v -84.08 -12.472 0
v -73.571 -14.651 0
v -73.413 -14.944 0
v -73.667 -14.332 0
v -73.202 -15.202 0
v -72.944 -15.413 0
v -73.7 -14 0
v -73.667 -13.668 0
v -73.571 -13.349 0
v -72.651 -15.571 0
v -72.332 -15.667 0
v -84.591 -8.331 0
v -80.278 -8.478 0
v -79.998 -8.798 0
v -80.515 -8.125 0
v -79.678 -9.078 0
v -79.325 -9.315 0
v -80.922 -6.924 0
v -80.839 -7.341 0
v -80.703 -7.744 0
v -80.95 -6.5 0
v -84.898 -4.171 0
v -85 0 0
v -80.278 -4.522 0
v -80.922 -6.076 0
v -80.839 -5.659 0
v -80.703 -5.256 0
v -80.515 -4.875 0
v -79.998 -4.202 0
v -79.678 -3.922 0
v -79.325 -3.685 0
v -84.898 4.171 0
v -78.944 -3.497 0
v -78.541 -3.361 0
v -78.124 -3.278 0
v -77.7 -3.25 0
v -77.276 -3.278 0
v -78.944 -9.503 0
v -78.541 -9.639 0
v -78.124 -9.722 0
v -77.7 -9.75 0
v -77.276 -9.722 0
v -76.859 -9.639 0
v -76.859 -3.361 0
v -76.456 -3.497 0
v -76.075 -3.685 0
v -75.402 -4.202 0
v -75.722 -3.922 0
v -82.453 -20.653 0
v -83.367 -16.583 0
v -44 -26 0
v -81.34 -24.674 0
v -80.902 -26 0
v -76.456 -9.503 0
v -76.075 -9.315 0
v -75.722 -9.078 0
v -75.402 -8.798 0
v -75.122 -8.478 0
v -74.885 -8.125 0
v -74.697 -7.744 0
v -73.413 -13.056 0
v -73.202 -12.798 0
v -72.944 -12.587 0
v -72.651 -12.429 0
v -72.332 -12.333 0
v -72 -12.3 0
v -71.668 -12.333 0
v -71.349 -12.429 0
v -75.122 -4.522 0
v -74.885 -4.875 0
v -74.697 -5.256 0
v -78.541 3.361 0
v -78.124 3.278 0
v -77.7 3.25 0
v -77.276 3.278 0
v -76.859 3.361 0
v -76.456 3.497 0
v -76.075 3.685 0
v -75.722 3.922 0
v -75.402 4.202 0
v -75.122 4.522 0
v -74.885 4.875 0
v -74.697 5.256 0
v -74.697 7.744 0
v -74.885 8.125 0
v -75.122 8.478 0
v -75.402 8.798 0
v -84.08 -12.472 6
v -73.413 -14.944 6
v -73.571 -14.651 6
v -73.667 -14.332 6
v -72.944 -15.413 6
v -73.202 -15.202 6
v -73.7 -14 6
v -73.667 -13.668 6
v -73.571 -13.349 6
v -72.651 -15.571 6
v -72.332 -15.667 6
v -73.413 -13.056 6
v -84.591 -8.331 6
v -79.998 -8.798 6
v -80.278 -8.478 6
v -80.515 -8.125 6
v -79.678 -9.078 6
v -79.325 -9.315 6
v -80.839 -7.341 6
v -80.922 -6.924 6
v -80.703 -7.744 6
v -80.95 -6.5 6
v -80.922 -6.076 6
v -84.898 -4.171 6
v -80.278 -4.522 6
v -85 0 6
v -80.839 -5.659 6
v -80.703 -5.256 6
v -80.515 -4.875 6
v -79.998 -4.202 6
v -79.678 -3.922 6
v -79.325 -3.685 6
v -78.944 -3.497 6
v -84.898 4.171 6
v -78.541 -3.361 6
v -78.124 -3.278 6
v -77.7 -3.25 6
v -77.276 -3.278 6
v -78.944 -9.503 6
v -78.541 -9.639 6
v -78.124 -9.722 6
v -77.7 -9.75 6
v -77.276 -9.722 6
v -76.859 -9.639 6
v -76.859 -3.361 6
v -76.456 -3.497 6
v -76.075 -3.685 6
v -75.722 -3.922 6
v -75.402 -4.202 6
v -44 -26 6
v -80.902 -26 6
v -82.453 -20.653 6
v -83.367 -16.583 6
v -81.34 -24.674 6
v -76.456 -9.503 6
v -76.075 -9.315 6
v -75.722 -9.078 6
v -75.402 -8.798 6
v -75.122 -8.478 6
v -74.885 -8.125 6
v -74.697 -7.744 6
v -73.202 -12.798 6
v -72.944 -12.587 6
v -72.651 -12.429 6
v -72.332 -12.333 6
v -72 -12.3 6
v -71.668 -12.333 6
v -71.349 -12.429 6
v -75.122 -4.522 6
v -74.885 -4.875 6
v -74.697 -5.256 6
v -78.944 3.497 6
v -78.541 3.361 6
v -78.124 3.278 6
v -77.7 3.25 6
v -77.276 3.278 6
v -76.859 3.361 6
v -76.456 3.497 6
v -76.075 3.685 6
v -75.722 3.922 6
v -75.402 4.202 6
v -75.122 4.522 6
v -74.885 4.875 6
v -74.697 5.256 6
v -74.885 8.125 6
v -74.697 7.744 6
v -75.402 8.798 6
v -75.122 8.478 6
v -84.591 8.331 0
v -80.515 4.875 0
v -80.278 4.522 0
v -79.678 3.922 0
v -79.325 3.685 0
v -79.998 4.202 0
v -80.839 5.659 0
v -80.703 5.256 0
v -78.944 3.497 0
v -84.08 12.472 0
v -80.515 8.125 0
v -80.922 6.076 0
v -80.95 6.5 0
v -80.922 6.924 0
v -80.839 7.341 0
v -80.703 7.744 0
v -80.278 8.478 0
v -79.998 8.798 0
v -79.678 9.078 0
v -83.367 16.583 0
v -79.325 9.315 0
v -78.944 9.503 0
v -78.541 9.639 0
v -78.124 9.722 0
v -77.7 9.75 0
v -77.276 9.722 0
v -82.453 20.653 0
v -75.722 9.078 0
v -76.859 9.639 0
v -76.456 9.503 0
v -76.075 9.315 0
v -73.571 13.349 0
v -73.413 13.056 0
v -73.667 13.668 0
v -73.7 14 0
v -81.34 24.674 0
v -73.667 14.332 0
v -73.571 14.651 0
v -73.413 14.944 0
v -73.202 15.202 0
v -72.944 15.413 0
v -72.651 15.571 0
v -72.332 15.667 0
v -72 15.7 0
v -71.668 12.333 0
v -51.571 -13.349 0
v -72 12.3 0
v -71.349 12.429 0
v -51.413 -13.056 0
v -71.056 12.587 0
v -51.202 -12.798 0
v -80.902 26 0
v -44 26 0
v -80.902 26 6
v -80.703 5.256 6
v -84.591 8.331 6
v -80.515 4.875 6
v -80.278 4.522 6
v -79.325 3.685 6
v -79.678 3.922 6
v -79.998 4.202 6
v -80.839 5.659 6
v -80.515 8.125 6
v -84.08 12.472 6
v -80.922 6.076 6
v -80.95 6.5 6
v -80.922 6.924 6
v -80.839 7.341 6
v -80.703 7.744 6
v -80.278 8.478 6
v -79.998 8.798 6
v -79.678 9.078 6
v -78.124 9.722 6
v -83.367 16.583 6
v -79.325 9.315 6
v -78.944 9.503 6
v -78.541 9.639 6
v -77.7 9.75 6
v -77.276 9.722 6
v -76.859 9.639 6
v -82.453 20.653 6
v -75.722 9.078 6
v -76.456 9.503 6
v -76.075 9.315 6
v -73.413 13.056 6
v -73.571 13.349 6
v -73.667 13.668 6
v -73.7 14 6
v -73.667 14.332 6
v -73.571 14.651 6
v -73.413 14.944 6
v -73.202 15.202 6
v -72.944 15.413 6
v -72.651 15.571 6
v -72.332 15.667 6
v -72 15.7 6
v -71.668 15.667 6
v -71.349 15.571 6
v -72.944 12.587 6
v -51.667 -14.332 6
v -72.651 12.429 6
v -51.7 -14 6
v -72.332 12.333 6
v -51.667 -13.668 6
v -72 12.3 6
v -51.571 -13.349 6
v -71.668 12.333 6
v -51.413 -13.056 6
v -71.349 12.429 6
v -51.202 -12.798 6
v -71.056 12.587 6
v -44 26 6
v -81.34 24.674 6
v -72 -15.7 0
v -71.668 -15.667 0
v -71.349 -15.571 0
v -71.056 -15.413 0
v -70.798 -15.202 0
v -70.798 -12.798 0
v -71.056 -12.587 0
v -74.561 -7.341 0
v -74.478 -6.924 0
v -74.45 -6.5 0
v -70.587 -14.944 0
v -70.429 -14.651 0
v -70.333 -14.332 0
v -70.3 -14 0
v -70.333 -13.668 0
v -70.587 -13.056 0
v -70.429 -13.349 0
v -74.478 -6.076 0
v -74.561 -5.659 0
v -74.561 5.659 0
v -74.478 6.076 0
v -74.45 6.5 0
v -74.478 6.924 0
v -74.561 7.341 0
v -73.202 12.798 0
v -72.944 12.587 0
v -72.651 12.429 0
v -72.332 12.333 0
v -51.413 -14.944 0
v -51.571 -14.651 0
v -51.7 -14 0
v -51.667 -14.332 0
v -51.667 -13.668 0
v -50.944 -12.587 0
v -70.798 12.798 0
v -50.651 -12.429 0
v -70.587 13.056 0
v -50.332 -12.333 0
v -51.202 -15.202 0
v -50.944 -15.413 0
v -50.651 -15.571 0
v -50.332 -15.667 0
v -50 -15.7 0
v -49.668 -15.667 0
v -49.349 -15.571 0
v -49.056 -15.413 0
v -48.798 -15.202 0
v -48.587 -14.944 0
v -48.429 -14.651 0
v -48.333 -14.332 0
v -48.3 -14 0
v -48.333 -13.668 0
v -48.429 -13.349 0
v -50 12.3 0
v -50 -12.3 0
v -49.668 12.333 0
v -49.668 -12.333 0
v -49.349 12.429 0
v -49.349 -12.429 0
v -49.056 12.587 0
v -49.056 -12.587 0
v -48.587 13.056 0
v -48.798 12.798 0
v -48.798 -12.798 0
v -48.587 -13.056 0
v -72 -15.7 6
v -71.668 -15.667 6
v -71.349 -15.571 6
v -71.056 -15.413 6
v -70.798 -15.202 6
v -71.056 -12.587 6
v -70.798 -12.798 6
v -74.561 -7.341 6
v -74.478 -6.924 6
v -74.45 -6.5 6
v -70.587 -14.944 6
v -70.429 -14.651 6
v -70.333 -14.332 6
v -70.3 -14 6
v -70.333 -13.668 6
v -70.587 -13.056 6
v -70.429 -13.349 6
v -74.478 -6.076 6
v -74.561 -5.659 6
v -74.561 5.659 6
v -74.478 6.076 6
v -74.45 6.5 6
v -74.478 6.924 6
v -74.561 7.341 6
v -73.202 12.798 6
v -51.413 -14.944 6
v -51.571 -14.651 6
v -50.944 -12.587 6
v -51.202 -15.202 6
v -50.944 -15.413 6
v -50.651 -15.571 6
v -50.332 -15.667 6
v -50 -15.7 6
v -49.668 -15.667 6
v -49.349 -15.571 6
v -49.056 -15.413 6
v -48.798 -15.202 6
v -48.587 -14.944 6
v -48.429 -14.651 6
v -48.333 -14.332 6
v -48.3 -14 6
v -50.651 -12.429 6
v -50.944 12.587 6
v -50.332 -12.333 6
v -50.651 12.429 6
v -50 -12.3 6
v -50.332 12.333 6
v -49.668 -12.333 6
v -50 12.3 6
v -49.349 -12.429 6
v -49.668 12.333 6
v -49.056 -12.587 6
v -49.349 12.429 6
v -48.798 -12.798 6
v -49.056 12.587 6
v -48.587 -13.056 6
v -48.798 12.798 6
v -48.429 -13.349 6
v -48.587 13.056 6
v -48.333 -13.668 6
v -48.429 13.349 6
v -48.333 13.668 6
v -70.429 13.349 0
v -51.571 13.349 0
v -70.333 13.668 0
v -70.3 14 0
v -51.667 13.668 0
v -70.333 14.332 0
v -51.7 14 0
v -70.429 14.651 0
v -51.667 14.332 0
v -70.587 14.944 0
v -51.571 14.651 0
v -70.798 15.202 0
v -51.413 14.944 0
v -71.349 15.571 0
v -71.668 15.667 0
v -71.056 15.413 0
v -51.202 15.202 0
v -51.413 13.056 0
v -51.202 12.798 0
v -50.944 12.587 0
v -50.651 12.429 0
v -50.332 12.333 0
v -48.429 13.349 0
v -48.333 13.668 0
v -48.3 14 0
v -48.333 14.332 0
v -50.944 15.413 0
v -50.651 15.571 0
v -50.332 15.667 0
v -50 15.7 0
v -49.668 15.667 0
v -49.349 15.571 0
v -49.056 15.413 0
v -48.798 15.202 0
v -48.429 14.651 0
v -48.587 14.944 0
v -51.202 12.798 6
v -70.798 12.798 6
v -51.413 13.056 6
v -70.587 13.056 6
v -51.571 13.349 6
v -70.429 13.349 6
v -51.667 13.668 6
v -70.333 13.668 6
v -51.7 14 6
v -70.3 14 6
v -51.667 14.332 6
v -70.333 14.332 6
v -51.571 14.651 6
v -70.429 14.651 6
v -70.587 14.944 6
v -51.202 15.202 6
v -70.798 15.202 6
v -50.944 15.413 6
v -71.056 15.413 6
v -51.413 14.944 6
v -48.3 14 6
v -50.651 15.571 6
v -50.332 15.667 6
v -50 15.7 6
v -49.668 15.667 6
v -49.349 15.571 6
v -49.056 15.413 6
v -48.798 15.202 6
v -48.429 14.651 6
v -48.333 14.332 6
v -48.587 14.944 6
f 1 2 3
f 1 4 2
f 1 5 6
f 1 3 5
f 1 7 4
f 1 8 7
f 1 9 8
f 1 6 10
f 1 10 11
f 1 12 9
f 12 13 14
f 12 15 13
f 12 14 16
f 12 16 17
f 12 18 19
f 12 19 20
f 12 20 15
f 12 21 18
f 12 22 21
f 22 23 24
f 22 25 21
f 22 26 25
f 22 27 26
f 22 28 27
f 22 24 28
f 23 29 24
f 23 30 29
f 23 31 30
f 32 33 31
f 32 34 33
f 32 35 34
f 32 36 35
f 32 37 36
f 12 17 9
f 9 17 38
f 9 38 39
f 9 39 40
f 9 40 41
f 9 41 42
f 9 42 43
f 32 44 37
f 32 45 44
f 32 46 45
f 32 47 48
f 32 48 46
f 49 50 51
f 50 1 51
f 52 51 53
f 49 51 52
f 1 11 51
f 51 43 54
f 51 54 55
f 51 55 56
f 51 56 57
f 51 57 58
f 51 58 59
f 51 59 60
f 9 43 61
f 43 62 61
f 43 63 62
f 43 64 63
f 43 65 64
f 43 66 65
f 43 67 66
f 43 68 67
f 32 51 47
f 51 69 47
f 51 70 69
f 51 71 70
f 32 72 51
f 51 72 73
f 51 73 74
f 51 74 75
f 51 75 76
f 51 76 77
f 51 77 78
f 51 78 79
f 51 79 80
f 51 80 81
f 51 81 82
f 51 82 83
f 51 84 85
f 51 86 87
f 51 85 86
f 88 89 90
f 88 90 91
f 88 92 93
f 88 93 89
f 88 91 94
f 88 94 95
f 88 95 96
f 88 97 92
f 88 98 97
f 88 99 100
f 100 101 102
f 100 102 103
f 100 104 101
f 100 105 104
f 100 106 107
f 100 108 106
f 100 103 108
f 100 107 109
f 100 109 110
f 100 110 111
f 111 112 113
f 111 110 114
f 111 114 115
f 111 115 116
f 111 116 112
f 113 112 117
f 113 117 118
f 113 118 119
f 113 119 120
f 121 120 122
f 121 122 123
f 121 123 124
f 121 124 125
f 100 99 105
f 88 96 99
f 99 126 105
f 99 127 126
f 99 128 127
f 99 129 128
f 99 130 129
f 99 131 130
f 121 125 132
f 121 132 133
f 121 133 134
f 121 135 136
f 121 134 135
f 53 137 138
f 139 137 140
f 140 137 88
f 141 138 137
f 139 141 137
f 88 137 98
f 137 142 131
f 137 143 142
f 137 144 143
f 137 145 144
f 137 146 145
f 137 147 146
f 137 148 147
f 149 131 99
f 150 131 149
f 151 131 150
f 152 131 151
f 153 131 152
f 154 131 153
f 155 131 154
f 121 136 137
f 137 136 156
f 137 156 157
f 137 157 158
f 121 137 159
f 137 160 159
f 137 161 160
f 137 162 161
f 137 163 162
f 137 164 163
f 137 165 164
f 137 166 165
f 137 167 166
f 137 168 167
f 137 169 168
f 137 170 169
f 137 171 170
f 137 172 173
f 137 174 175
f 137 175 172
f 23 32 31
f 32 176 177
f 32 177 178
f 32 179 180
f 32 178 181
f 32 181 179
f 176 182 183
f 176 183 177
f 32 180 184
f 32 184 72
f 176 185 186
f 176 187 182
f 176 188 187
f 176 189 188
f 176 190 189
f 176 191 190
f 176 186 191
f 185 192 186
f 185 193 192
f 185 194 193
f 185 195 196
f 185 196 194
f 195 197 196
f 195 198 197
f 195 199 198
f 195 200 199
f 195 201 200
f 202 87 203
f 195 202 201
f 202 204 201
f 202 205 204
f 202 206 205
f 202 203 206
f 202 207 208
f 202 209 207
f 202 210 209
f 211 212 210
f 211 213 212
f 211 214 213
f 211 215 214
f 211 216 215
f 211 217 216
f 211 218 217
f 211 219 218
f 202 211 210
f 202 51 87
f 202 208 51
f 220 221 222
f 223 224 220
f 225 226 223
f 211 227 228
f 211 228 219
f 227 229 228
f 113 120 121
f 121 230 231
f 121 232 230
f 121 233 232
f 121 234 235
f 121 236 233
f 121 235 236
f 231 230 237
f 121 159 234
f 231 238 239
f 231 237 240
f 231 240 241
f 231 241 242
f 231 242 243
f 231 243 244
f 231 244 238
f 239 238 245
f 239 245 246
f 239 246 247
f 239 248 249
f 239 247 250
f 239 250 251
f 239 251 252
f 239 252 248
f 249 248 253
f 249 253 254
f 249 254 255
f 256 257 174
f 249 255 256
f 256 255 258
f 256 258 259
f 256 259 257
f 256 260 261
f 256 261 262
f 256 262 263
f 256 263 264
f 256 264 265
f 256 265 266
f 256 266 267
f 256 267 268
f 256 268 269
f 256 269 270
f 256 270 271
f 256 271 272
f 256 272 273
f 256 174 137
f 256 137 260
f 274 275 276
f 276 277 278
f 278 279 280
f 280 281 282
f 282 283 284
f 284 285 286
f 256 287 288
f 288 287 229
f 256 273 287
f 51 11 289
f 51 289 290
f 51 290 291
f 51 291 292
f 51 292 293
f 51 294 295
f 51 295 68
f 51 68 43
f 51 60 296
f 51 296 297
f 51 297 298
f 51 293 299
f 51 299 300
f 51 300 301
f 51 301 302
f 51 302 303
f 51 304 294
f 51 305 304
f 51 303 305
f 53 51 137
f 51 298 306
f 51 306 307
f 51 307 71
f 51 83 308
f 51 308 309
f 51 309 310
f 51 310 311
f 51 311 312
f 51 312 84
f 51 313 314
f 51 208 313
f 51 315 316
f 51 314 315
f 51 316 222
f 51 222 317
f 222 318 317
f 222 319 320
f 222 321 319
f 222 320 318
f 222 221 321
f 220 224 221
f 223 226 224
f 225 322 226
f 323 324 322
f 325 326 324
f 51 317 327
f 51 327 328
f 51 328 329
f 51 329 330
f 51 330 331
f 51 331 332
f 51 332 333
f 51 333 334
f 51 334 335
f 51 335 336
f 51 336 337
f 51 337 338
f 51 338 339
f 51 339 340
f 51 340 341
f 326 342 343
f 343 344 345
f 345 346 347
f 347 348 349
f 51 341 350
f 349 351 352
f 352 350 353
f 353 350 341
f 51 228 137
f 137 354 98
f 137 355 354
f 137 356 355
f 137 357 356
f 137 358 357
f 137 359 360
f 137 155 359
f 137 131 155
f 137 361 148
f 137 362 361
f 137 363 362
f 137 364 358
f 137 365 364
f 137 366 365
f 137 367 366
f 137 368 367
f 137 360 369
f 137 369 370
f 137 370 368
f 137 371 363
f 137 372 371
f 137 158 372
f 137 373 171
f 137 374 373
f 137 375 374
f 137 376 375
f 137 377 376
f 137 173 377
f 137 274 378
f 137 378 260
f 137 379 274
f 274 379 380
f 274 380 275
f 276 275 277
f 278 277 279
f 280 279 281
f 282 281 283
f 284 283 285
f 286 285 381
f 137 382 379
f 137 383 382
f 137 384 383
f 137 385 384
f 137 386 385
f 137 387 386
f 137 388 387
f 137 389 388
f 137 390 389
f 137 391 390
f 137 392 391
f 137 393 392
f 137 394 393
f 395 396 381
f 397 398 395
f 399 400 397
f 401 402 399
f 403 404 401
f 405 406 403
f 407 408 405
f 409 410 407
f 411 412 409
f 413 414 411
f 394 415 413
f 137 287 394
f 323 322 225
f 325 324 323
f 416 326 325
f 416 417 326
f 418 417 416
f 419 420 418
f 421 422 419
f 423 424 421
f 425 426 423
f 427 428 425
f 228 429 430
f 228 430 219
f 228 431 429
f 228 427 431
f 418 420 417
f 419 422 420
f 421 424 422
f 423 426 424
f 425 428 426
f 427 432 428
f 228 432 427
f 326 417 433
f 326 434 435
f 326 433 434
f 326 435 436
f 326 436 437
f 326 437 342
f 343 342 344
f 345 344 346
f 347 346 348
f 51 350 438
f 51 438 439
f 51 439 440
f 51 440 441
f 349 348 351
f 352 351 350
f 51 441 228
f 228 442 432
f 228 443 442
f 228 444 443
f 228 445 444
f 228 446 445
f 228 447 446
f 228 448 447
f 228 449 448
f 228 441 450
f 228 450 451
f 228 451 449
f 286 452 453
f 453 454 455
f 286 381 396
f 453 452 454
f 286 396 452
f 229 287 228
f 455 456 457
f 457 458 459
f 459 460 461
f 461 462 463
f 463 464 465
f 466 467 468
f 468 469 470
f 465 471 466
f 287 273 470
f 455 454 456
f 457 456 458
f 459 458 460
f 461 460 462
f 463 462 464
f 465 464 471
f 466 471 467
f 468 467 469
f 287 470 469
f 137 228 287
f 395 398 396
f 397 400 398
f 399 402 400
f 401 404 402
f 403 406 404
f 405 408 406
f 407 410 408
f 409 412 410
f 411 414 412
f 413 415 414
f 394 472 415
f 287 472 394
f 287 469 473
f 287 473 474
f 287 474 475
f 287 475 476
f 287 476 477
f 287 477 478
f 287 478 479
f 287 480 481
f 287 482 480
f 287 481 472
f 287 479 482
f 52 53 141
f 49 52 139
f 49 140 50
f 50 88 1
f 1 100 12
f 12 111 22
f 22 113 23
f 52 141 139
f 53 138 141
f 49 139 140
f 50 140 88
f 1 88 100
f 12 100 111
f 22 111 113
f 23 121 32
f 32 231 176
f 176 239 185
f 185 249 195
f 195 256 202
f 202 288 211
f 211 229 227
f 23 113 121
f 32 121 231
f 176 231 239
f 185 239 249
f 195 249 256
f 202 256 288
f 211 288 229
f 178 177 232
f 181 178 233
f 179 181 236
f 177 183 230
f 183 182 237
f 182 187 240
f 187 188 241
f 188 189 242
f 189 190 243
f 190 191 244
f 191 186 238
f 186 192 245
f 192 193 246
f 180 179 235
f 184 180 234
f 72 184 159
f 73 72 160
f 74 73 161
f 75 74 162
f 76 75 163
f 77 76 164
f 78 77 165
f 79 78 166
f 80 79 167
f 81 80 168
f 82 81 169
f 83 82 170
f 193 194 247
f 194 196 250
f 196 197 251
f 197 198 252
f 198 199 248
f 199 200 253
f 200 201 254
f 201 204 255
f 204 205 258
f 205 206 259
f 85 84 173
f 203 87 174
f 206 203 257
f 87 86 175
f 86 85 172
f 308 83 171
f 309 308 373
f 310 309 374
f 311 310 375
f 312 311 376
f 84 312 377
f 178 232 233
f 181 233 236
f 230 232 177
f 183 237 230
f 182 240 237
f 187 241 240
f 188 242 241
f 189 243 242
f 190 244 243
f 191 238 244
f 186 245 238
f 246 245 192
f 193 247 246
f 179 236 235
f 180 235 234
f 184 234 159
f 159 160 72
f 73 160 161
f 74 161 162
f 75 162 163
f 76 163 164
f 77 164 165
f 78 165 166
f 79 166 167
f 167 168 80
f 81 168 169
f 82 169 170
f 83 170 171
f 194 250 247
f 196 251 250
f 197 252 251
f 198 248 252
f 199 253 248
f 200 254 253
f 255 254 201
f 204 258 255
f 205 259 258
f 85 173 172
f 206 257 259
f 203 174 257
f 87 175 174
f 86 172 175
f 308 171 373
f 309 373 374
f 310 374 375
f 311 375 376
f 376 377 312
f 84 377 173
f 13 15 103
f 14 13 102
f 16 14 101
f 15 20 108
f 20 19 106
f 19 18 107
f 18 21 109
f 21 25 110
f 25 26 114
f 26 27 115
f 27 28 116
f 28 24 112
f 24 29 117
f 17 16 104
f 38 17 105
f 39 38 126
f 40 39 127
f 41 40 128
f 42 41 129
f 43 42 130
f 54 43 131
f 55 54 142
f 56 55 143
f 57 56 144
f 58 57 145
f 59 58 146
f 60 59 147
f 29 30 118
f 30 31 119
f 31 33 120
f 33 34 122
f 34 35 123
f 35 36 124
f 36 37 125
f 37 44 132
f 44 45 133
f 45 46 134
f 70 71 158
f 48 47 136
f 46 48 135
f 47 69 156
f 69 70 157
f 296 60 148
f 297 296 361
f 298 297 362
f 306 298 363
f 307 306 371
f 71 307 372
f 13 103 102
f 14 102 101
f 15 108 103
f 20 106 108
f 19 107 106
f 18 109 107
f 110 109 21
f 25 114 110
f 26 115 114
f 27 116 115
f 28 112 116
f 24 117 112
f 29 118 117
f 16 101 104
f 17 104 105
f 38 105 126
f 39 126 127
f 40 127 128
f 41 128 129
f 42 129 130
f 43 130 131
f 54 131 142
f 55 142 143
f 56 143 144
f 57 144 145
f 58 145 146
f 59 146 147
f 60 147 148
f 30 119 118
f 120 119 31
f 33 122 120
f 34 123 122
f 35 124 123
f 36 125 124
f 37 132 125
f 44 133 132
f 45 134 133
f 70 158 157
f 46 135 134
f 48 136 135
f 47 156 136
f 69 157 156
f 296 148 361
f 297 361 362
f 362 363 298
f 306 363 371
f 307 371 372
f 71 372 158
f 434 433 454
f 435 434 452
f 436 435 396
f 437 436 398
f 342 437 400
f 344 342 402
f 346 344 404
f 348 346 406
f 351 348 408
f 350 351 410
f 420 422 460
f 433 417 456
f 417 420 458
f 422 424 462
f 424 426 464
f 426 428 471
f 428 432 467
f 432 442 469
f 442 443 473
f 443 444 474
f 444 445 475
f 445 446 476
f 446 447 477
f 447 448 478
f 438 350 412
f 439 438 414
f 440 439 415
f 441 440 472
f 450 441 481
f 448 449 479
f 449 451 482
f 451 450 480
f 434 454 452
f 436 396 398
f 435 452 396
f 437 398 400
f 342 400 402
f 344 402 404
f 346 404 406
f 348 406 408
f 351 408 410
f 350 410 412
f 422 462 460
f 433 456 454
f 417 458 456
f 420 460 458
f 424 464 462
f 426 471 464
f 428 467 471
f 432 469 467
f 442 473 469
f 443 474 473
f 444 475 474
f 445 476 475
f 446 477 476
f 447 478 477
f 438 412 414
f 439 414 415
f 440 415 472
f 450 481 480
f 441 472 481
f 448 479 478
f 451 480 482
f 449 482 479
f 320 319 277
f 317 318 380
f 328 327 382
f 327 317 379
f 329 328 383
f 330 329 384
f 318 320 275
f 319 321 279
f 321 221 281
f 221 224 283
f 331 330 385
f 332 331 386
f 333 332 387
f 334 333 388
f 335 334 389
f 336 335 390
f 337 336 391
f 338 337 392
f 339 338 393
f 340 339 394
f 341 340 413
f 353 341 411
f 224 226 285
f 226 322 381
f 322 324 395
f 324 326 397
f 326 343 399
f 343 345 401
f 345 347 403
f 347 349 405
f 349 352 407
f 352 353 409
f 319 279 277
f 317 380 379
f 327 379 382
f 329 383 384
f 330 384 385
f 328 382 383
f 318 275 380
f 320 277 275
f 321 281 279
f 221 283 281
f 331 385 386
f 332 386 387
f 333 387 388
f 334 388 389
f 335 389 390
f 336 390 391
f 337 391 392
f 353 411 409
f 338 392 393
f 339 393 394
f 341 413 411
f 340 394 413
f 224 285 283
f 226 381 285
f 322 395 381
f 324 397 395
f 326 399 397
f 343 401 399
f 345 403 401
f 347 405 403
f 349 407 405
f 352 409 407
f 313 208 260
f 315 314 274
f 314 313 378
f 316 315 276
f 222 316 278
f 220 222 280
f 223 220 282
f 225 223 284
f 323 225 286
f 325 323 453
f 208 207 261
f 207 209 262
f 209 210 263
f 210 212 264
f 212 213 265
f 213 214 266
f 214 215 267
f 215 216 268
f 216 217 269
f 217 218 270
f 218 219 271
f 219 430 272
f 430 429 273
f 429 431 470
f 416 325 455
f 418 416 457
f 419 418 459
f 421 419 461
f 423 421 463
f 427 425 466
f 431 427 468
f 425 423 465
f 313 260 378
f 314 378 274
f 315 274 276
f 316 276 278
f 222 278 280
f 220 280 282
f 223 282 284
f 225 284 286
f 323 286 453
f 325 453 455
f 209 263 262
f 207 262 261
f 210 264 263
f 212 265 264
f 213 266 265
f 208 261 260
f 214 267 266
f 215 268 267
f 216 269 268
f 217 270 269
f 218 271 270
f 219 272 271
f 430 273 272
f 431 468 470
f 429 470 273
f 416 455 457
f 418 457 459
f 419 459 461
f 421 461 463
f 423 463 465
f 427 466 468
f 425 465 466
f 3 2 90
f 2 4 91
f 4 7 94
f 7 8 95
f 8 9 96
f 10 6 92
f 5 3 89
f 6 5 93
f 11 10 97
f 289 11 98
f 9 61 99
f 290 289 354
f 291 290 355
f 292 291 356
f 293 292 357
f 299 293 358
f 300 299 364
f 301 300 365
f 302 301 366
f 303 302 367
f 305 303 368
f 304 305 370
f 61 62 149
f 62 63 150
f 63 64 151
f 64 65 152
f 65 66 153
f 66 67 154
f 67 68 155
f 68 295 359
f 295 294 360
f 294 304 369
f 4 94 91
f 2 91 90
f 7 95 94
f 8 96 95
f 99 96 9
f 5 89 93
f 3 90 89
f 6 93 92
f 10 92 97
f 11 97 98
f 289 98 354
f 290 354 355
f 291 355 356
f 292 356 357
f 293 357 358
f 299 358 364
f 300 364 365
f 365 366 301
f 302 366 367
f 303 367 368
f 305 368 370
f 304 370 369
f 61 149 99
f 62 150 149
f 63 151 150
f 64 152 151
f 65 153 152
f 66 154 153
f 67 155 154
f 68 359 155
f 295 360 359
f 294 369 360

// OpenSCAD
// counterweight_arm — 转子配重臂 (与 build_stl.py 同参, 2026-08-03)
// v3 / v3.1 共用一件。坐标系 = 罩子零件系 XY, Z0 = 罩顶面 (罩零件系 Z50 / 装配 Z92.2)。
// 骑在罩顶跨接缝: 4 颗 M3 里 2 颗进 shroud_half_A、2 颗进 shroud_half_B
// ⇒ 本件顺带把两半在顶部连成一体。
// 打印: 底面贴床, 零支撑 (全件等厚, 无桥接)。⚠ 底面全贴罩顶 → 板下无空间,
// M6 五金全部放板上面, 螺杆往下伸出量必须为 0。

r_out    = 85;          // 罩外径 R = 旋转包络上限 (用户: 不超 Φ170)
base_t   = 6;           // 底板厚
x_in     = -44;         // 内端
hw       = 26;          // 半宽 (2026-08-04 用户"做宽一点": 19 → 26)

m3_xs    = [-50, -72];  // 对罩顶 4 个铜花螺母位
m3_y     = 14;
m3_d     = 3.4;

m6_x = -77.7; m6_y = 6.5;   // 2× M6 光孔, 孔距 = 2*m6_y = 13 (2026-08-04 二改)
m6_d        = 6.5;      // 光孔 — 凸台与六角窝已取消

module counterweight_arm() {
  difference() {
    intersection() {                                     // 底板 (外缘随 R85 裁), 全件等厚
      translate([-r_out-1, -hw, 0]) cube([x_in + r_out + 1, 2*hw, base_t]);   // 42 长
      cylinder(h = base_t, r = r_out, $fn = 256);
    }
    for (s = [1,-1])                                     // 2× M6 光孔 (孔距 13)
      translate([m6_x, s*m6_y, -1]) cylinder(h = base_t + 2, d = m6_d, $fn = 48);
    for (x = m3_xs) for (s = [1,-1])                     // M3 ×4
      translate([x, s*m3_y, -1]) cylinder(h = base_t + 2, d = m3_d, $fn = 32);
  }
}

counterweight_arm();
